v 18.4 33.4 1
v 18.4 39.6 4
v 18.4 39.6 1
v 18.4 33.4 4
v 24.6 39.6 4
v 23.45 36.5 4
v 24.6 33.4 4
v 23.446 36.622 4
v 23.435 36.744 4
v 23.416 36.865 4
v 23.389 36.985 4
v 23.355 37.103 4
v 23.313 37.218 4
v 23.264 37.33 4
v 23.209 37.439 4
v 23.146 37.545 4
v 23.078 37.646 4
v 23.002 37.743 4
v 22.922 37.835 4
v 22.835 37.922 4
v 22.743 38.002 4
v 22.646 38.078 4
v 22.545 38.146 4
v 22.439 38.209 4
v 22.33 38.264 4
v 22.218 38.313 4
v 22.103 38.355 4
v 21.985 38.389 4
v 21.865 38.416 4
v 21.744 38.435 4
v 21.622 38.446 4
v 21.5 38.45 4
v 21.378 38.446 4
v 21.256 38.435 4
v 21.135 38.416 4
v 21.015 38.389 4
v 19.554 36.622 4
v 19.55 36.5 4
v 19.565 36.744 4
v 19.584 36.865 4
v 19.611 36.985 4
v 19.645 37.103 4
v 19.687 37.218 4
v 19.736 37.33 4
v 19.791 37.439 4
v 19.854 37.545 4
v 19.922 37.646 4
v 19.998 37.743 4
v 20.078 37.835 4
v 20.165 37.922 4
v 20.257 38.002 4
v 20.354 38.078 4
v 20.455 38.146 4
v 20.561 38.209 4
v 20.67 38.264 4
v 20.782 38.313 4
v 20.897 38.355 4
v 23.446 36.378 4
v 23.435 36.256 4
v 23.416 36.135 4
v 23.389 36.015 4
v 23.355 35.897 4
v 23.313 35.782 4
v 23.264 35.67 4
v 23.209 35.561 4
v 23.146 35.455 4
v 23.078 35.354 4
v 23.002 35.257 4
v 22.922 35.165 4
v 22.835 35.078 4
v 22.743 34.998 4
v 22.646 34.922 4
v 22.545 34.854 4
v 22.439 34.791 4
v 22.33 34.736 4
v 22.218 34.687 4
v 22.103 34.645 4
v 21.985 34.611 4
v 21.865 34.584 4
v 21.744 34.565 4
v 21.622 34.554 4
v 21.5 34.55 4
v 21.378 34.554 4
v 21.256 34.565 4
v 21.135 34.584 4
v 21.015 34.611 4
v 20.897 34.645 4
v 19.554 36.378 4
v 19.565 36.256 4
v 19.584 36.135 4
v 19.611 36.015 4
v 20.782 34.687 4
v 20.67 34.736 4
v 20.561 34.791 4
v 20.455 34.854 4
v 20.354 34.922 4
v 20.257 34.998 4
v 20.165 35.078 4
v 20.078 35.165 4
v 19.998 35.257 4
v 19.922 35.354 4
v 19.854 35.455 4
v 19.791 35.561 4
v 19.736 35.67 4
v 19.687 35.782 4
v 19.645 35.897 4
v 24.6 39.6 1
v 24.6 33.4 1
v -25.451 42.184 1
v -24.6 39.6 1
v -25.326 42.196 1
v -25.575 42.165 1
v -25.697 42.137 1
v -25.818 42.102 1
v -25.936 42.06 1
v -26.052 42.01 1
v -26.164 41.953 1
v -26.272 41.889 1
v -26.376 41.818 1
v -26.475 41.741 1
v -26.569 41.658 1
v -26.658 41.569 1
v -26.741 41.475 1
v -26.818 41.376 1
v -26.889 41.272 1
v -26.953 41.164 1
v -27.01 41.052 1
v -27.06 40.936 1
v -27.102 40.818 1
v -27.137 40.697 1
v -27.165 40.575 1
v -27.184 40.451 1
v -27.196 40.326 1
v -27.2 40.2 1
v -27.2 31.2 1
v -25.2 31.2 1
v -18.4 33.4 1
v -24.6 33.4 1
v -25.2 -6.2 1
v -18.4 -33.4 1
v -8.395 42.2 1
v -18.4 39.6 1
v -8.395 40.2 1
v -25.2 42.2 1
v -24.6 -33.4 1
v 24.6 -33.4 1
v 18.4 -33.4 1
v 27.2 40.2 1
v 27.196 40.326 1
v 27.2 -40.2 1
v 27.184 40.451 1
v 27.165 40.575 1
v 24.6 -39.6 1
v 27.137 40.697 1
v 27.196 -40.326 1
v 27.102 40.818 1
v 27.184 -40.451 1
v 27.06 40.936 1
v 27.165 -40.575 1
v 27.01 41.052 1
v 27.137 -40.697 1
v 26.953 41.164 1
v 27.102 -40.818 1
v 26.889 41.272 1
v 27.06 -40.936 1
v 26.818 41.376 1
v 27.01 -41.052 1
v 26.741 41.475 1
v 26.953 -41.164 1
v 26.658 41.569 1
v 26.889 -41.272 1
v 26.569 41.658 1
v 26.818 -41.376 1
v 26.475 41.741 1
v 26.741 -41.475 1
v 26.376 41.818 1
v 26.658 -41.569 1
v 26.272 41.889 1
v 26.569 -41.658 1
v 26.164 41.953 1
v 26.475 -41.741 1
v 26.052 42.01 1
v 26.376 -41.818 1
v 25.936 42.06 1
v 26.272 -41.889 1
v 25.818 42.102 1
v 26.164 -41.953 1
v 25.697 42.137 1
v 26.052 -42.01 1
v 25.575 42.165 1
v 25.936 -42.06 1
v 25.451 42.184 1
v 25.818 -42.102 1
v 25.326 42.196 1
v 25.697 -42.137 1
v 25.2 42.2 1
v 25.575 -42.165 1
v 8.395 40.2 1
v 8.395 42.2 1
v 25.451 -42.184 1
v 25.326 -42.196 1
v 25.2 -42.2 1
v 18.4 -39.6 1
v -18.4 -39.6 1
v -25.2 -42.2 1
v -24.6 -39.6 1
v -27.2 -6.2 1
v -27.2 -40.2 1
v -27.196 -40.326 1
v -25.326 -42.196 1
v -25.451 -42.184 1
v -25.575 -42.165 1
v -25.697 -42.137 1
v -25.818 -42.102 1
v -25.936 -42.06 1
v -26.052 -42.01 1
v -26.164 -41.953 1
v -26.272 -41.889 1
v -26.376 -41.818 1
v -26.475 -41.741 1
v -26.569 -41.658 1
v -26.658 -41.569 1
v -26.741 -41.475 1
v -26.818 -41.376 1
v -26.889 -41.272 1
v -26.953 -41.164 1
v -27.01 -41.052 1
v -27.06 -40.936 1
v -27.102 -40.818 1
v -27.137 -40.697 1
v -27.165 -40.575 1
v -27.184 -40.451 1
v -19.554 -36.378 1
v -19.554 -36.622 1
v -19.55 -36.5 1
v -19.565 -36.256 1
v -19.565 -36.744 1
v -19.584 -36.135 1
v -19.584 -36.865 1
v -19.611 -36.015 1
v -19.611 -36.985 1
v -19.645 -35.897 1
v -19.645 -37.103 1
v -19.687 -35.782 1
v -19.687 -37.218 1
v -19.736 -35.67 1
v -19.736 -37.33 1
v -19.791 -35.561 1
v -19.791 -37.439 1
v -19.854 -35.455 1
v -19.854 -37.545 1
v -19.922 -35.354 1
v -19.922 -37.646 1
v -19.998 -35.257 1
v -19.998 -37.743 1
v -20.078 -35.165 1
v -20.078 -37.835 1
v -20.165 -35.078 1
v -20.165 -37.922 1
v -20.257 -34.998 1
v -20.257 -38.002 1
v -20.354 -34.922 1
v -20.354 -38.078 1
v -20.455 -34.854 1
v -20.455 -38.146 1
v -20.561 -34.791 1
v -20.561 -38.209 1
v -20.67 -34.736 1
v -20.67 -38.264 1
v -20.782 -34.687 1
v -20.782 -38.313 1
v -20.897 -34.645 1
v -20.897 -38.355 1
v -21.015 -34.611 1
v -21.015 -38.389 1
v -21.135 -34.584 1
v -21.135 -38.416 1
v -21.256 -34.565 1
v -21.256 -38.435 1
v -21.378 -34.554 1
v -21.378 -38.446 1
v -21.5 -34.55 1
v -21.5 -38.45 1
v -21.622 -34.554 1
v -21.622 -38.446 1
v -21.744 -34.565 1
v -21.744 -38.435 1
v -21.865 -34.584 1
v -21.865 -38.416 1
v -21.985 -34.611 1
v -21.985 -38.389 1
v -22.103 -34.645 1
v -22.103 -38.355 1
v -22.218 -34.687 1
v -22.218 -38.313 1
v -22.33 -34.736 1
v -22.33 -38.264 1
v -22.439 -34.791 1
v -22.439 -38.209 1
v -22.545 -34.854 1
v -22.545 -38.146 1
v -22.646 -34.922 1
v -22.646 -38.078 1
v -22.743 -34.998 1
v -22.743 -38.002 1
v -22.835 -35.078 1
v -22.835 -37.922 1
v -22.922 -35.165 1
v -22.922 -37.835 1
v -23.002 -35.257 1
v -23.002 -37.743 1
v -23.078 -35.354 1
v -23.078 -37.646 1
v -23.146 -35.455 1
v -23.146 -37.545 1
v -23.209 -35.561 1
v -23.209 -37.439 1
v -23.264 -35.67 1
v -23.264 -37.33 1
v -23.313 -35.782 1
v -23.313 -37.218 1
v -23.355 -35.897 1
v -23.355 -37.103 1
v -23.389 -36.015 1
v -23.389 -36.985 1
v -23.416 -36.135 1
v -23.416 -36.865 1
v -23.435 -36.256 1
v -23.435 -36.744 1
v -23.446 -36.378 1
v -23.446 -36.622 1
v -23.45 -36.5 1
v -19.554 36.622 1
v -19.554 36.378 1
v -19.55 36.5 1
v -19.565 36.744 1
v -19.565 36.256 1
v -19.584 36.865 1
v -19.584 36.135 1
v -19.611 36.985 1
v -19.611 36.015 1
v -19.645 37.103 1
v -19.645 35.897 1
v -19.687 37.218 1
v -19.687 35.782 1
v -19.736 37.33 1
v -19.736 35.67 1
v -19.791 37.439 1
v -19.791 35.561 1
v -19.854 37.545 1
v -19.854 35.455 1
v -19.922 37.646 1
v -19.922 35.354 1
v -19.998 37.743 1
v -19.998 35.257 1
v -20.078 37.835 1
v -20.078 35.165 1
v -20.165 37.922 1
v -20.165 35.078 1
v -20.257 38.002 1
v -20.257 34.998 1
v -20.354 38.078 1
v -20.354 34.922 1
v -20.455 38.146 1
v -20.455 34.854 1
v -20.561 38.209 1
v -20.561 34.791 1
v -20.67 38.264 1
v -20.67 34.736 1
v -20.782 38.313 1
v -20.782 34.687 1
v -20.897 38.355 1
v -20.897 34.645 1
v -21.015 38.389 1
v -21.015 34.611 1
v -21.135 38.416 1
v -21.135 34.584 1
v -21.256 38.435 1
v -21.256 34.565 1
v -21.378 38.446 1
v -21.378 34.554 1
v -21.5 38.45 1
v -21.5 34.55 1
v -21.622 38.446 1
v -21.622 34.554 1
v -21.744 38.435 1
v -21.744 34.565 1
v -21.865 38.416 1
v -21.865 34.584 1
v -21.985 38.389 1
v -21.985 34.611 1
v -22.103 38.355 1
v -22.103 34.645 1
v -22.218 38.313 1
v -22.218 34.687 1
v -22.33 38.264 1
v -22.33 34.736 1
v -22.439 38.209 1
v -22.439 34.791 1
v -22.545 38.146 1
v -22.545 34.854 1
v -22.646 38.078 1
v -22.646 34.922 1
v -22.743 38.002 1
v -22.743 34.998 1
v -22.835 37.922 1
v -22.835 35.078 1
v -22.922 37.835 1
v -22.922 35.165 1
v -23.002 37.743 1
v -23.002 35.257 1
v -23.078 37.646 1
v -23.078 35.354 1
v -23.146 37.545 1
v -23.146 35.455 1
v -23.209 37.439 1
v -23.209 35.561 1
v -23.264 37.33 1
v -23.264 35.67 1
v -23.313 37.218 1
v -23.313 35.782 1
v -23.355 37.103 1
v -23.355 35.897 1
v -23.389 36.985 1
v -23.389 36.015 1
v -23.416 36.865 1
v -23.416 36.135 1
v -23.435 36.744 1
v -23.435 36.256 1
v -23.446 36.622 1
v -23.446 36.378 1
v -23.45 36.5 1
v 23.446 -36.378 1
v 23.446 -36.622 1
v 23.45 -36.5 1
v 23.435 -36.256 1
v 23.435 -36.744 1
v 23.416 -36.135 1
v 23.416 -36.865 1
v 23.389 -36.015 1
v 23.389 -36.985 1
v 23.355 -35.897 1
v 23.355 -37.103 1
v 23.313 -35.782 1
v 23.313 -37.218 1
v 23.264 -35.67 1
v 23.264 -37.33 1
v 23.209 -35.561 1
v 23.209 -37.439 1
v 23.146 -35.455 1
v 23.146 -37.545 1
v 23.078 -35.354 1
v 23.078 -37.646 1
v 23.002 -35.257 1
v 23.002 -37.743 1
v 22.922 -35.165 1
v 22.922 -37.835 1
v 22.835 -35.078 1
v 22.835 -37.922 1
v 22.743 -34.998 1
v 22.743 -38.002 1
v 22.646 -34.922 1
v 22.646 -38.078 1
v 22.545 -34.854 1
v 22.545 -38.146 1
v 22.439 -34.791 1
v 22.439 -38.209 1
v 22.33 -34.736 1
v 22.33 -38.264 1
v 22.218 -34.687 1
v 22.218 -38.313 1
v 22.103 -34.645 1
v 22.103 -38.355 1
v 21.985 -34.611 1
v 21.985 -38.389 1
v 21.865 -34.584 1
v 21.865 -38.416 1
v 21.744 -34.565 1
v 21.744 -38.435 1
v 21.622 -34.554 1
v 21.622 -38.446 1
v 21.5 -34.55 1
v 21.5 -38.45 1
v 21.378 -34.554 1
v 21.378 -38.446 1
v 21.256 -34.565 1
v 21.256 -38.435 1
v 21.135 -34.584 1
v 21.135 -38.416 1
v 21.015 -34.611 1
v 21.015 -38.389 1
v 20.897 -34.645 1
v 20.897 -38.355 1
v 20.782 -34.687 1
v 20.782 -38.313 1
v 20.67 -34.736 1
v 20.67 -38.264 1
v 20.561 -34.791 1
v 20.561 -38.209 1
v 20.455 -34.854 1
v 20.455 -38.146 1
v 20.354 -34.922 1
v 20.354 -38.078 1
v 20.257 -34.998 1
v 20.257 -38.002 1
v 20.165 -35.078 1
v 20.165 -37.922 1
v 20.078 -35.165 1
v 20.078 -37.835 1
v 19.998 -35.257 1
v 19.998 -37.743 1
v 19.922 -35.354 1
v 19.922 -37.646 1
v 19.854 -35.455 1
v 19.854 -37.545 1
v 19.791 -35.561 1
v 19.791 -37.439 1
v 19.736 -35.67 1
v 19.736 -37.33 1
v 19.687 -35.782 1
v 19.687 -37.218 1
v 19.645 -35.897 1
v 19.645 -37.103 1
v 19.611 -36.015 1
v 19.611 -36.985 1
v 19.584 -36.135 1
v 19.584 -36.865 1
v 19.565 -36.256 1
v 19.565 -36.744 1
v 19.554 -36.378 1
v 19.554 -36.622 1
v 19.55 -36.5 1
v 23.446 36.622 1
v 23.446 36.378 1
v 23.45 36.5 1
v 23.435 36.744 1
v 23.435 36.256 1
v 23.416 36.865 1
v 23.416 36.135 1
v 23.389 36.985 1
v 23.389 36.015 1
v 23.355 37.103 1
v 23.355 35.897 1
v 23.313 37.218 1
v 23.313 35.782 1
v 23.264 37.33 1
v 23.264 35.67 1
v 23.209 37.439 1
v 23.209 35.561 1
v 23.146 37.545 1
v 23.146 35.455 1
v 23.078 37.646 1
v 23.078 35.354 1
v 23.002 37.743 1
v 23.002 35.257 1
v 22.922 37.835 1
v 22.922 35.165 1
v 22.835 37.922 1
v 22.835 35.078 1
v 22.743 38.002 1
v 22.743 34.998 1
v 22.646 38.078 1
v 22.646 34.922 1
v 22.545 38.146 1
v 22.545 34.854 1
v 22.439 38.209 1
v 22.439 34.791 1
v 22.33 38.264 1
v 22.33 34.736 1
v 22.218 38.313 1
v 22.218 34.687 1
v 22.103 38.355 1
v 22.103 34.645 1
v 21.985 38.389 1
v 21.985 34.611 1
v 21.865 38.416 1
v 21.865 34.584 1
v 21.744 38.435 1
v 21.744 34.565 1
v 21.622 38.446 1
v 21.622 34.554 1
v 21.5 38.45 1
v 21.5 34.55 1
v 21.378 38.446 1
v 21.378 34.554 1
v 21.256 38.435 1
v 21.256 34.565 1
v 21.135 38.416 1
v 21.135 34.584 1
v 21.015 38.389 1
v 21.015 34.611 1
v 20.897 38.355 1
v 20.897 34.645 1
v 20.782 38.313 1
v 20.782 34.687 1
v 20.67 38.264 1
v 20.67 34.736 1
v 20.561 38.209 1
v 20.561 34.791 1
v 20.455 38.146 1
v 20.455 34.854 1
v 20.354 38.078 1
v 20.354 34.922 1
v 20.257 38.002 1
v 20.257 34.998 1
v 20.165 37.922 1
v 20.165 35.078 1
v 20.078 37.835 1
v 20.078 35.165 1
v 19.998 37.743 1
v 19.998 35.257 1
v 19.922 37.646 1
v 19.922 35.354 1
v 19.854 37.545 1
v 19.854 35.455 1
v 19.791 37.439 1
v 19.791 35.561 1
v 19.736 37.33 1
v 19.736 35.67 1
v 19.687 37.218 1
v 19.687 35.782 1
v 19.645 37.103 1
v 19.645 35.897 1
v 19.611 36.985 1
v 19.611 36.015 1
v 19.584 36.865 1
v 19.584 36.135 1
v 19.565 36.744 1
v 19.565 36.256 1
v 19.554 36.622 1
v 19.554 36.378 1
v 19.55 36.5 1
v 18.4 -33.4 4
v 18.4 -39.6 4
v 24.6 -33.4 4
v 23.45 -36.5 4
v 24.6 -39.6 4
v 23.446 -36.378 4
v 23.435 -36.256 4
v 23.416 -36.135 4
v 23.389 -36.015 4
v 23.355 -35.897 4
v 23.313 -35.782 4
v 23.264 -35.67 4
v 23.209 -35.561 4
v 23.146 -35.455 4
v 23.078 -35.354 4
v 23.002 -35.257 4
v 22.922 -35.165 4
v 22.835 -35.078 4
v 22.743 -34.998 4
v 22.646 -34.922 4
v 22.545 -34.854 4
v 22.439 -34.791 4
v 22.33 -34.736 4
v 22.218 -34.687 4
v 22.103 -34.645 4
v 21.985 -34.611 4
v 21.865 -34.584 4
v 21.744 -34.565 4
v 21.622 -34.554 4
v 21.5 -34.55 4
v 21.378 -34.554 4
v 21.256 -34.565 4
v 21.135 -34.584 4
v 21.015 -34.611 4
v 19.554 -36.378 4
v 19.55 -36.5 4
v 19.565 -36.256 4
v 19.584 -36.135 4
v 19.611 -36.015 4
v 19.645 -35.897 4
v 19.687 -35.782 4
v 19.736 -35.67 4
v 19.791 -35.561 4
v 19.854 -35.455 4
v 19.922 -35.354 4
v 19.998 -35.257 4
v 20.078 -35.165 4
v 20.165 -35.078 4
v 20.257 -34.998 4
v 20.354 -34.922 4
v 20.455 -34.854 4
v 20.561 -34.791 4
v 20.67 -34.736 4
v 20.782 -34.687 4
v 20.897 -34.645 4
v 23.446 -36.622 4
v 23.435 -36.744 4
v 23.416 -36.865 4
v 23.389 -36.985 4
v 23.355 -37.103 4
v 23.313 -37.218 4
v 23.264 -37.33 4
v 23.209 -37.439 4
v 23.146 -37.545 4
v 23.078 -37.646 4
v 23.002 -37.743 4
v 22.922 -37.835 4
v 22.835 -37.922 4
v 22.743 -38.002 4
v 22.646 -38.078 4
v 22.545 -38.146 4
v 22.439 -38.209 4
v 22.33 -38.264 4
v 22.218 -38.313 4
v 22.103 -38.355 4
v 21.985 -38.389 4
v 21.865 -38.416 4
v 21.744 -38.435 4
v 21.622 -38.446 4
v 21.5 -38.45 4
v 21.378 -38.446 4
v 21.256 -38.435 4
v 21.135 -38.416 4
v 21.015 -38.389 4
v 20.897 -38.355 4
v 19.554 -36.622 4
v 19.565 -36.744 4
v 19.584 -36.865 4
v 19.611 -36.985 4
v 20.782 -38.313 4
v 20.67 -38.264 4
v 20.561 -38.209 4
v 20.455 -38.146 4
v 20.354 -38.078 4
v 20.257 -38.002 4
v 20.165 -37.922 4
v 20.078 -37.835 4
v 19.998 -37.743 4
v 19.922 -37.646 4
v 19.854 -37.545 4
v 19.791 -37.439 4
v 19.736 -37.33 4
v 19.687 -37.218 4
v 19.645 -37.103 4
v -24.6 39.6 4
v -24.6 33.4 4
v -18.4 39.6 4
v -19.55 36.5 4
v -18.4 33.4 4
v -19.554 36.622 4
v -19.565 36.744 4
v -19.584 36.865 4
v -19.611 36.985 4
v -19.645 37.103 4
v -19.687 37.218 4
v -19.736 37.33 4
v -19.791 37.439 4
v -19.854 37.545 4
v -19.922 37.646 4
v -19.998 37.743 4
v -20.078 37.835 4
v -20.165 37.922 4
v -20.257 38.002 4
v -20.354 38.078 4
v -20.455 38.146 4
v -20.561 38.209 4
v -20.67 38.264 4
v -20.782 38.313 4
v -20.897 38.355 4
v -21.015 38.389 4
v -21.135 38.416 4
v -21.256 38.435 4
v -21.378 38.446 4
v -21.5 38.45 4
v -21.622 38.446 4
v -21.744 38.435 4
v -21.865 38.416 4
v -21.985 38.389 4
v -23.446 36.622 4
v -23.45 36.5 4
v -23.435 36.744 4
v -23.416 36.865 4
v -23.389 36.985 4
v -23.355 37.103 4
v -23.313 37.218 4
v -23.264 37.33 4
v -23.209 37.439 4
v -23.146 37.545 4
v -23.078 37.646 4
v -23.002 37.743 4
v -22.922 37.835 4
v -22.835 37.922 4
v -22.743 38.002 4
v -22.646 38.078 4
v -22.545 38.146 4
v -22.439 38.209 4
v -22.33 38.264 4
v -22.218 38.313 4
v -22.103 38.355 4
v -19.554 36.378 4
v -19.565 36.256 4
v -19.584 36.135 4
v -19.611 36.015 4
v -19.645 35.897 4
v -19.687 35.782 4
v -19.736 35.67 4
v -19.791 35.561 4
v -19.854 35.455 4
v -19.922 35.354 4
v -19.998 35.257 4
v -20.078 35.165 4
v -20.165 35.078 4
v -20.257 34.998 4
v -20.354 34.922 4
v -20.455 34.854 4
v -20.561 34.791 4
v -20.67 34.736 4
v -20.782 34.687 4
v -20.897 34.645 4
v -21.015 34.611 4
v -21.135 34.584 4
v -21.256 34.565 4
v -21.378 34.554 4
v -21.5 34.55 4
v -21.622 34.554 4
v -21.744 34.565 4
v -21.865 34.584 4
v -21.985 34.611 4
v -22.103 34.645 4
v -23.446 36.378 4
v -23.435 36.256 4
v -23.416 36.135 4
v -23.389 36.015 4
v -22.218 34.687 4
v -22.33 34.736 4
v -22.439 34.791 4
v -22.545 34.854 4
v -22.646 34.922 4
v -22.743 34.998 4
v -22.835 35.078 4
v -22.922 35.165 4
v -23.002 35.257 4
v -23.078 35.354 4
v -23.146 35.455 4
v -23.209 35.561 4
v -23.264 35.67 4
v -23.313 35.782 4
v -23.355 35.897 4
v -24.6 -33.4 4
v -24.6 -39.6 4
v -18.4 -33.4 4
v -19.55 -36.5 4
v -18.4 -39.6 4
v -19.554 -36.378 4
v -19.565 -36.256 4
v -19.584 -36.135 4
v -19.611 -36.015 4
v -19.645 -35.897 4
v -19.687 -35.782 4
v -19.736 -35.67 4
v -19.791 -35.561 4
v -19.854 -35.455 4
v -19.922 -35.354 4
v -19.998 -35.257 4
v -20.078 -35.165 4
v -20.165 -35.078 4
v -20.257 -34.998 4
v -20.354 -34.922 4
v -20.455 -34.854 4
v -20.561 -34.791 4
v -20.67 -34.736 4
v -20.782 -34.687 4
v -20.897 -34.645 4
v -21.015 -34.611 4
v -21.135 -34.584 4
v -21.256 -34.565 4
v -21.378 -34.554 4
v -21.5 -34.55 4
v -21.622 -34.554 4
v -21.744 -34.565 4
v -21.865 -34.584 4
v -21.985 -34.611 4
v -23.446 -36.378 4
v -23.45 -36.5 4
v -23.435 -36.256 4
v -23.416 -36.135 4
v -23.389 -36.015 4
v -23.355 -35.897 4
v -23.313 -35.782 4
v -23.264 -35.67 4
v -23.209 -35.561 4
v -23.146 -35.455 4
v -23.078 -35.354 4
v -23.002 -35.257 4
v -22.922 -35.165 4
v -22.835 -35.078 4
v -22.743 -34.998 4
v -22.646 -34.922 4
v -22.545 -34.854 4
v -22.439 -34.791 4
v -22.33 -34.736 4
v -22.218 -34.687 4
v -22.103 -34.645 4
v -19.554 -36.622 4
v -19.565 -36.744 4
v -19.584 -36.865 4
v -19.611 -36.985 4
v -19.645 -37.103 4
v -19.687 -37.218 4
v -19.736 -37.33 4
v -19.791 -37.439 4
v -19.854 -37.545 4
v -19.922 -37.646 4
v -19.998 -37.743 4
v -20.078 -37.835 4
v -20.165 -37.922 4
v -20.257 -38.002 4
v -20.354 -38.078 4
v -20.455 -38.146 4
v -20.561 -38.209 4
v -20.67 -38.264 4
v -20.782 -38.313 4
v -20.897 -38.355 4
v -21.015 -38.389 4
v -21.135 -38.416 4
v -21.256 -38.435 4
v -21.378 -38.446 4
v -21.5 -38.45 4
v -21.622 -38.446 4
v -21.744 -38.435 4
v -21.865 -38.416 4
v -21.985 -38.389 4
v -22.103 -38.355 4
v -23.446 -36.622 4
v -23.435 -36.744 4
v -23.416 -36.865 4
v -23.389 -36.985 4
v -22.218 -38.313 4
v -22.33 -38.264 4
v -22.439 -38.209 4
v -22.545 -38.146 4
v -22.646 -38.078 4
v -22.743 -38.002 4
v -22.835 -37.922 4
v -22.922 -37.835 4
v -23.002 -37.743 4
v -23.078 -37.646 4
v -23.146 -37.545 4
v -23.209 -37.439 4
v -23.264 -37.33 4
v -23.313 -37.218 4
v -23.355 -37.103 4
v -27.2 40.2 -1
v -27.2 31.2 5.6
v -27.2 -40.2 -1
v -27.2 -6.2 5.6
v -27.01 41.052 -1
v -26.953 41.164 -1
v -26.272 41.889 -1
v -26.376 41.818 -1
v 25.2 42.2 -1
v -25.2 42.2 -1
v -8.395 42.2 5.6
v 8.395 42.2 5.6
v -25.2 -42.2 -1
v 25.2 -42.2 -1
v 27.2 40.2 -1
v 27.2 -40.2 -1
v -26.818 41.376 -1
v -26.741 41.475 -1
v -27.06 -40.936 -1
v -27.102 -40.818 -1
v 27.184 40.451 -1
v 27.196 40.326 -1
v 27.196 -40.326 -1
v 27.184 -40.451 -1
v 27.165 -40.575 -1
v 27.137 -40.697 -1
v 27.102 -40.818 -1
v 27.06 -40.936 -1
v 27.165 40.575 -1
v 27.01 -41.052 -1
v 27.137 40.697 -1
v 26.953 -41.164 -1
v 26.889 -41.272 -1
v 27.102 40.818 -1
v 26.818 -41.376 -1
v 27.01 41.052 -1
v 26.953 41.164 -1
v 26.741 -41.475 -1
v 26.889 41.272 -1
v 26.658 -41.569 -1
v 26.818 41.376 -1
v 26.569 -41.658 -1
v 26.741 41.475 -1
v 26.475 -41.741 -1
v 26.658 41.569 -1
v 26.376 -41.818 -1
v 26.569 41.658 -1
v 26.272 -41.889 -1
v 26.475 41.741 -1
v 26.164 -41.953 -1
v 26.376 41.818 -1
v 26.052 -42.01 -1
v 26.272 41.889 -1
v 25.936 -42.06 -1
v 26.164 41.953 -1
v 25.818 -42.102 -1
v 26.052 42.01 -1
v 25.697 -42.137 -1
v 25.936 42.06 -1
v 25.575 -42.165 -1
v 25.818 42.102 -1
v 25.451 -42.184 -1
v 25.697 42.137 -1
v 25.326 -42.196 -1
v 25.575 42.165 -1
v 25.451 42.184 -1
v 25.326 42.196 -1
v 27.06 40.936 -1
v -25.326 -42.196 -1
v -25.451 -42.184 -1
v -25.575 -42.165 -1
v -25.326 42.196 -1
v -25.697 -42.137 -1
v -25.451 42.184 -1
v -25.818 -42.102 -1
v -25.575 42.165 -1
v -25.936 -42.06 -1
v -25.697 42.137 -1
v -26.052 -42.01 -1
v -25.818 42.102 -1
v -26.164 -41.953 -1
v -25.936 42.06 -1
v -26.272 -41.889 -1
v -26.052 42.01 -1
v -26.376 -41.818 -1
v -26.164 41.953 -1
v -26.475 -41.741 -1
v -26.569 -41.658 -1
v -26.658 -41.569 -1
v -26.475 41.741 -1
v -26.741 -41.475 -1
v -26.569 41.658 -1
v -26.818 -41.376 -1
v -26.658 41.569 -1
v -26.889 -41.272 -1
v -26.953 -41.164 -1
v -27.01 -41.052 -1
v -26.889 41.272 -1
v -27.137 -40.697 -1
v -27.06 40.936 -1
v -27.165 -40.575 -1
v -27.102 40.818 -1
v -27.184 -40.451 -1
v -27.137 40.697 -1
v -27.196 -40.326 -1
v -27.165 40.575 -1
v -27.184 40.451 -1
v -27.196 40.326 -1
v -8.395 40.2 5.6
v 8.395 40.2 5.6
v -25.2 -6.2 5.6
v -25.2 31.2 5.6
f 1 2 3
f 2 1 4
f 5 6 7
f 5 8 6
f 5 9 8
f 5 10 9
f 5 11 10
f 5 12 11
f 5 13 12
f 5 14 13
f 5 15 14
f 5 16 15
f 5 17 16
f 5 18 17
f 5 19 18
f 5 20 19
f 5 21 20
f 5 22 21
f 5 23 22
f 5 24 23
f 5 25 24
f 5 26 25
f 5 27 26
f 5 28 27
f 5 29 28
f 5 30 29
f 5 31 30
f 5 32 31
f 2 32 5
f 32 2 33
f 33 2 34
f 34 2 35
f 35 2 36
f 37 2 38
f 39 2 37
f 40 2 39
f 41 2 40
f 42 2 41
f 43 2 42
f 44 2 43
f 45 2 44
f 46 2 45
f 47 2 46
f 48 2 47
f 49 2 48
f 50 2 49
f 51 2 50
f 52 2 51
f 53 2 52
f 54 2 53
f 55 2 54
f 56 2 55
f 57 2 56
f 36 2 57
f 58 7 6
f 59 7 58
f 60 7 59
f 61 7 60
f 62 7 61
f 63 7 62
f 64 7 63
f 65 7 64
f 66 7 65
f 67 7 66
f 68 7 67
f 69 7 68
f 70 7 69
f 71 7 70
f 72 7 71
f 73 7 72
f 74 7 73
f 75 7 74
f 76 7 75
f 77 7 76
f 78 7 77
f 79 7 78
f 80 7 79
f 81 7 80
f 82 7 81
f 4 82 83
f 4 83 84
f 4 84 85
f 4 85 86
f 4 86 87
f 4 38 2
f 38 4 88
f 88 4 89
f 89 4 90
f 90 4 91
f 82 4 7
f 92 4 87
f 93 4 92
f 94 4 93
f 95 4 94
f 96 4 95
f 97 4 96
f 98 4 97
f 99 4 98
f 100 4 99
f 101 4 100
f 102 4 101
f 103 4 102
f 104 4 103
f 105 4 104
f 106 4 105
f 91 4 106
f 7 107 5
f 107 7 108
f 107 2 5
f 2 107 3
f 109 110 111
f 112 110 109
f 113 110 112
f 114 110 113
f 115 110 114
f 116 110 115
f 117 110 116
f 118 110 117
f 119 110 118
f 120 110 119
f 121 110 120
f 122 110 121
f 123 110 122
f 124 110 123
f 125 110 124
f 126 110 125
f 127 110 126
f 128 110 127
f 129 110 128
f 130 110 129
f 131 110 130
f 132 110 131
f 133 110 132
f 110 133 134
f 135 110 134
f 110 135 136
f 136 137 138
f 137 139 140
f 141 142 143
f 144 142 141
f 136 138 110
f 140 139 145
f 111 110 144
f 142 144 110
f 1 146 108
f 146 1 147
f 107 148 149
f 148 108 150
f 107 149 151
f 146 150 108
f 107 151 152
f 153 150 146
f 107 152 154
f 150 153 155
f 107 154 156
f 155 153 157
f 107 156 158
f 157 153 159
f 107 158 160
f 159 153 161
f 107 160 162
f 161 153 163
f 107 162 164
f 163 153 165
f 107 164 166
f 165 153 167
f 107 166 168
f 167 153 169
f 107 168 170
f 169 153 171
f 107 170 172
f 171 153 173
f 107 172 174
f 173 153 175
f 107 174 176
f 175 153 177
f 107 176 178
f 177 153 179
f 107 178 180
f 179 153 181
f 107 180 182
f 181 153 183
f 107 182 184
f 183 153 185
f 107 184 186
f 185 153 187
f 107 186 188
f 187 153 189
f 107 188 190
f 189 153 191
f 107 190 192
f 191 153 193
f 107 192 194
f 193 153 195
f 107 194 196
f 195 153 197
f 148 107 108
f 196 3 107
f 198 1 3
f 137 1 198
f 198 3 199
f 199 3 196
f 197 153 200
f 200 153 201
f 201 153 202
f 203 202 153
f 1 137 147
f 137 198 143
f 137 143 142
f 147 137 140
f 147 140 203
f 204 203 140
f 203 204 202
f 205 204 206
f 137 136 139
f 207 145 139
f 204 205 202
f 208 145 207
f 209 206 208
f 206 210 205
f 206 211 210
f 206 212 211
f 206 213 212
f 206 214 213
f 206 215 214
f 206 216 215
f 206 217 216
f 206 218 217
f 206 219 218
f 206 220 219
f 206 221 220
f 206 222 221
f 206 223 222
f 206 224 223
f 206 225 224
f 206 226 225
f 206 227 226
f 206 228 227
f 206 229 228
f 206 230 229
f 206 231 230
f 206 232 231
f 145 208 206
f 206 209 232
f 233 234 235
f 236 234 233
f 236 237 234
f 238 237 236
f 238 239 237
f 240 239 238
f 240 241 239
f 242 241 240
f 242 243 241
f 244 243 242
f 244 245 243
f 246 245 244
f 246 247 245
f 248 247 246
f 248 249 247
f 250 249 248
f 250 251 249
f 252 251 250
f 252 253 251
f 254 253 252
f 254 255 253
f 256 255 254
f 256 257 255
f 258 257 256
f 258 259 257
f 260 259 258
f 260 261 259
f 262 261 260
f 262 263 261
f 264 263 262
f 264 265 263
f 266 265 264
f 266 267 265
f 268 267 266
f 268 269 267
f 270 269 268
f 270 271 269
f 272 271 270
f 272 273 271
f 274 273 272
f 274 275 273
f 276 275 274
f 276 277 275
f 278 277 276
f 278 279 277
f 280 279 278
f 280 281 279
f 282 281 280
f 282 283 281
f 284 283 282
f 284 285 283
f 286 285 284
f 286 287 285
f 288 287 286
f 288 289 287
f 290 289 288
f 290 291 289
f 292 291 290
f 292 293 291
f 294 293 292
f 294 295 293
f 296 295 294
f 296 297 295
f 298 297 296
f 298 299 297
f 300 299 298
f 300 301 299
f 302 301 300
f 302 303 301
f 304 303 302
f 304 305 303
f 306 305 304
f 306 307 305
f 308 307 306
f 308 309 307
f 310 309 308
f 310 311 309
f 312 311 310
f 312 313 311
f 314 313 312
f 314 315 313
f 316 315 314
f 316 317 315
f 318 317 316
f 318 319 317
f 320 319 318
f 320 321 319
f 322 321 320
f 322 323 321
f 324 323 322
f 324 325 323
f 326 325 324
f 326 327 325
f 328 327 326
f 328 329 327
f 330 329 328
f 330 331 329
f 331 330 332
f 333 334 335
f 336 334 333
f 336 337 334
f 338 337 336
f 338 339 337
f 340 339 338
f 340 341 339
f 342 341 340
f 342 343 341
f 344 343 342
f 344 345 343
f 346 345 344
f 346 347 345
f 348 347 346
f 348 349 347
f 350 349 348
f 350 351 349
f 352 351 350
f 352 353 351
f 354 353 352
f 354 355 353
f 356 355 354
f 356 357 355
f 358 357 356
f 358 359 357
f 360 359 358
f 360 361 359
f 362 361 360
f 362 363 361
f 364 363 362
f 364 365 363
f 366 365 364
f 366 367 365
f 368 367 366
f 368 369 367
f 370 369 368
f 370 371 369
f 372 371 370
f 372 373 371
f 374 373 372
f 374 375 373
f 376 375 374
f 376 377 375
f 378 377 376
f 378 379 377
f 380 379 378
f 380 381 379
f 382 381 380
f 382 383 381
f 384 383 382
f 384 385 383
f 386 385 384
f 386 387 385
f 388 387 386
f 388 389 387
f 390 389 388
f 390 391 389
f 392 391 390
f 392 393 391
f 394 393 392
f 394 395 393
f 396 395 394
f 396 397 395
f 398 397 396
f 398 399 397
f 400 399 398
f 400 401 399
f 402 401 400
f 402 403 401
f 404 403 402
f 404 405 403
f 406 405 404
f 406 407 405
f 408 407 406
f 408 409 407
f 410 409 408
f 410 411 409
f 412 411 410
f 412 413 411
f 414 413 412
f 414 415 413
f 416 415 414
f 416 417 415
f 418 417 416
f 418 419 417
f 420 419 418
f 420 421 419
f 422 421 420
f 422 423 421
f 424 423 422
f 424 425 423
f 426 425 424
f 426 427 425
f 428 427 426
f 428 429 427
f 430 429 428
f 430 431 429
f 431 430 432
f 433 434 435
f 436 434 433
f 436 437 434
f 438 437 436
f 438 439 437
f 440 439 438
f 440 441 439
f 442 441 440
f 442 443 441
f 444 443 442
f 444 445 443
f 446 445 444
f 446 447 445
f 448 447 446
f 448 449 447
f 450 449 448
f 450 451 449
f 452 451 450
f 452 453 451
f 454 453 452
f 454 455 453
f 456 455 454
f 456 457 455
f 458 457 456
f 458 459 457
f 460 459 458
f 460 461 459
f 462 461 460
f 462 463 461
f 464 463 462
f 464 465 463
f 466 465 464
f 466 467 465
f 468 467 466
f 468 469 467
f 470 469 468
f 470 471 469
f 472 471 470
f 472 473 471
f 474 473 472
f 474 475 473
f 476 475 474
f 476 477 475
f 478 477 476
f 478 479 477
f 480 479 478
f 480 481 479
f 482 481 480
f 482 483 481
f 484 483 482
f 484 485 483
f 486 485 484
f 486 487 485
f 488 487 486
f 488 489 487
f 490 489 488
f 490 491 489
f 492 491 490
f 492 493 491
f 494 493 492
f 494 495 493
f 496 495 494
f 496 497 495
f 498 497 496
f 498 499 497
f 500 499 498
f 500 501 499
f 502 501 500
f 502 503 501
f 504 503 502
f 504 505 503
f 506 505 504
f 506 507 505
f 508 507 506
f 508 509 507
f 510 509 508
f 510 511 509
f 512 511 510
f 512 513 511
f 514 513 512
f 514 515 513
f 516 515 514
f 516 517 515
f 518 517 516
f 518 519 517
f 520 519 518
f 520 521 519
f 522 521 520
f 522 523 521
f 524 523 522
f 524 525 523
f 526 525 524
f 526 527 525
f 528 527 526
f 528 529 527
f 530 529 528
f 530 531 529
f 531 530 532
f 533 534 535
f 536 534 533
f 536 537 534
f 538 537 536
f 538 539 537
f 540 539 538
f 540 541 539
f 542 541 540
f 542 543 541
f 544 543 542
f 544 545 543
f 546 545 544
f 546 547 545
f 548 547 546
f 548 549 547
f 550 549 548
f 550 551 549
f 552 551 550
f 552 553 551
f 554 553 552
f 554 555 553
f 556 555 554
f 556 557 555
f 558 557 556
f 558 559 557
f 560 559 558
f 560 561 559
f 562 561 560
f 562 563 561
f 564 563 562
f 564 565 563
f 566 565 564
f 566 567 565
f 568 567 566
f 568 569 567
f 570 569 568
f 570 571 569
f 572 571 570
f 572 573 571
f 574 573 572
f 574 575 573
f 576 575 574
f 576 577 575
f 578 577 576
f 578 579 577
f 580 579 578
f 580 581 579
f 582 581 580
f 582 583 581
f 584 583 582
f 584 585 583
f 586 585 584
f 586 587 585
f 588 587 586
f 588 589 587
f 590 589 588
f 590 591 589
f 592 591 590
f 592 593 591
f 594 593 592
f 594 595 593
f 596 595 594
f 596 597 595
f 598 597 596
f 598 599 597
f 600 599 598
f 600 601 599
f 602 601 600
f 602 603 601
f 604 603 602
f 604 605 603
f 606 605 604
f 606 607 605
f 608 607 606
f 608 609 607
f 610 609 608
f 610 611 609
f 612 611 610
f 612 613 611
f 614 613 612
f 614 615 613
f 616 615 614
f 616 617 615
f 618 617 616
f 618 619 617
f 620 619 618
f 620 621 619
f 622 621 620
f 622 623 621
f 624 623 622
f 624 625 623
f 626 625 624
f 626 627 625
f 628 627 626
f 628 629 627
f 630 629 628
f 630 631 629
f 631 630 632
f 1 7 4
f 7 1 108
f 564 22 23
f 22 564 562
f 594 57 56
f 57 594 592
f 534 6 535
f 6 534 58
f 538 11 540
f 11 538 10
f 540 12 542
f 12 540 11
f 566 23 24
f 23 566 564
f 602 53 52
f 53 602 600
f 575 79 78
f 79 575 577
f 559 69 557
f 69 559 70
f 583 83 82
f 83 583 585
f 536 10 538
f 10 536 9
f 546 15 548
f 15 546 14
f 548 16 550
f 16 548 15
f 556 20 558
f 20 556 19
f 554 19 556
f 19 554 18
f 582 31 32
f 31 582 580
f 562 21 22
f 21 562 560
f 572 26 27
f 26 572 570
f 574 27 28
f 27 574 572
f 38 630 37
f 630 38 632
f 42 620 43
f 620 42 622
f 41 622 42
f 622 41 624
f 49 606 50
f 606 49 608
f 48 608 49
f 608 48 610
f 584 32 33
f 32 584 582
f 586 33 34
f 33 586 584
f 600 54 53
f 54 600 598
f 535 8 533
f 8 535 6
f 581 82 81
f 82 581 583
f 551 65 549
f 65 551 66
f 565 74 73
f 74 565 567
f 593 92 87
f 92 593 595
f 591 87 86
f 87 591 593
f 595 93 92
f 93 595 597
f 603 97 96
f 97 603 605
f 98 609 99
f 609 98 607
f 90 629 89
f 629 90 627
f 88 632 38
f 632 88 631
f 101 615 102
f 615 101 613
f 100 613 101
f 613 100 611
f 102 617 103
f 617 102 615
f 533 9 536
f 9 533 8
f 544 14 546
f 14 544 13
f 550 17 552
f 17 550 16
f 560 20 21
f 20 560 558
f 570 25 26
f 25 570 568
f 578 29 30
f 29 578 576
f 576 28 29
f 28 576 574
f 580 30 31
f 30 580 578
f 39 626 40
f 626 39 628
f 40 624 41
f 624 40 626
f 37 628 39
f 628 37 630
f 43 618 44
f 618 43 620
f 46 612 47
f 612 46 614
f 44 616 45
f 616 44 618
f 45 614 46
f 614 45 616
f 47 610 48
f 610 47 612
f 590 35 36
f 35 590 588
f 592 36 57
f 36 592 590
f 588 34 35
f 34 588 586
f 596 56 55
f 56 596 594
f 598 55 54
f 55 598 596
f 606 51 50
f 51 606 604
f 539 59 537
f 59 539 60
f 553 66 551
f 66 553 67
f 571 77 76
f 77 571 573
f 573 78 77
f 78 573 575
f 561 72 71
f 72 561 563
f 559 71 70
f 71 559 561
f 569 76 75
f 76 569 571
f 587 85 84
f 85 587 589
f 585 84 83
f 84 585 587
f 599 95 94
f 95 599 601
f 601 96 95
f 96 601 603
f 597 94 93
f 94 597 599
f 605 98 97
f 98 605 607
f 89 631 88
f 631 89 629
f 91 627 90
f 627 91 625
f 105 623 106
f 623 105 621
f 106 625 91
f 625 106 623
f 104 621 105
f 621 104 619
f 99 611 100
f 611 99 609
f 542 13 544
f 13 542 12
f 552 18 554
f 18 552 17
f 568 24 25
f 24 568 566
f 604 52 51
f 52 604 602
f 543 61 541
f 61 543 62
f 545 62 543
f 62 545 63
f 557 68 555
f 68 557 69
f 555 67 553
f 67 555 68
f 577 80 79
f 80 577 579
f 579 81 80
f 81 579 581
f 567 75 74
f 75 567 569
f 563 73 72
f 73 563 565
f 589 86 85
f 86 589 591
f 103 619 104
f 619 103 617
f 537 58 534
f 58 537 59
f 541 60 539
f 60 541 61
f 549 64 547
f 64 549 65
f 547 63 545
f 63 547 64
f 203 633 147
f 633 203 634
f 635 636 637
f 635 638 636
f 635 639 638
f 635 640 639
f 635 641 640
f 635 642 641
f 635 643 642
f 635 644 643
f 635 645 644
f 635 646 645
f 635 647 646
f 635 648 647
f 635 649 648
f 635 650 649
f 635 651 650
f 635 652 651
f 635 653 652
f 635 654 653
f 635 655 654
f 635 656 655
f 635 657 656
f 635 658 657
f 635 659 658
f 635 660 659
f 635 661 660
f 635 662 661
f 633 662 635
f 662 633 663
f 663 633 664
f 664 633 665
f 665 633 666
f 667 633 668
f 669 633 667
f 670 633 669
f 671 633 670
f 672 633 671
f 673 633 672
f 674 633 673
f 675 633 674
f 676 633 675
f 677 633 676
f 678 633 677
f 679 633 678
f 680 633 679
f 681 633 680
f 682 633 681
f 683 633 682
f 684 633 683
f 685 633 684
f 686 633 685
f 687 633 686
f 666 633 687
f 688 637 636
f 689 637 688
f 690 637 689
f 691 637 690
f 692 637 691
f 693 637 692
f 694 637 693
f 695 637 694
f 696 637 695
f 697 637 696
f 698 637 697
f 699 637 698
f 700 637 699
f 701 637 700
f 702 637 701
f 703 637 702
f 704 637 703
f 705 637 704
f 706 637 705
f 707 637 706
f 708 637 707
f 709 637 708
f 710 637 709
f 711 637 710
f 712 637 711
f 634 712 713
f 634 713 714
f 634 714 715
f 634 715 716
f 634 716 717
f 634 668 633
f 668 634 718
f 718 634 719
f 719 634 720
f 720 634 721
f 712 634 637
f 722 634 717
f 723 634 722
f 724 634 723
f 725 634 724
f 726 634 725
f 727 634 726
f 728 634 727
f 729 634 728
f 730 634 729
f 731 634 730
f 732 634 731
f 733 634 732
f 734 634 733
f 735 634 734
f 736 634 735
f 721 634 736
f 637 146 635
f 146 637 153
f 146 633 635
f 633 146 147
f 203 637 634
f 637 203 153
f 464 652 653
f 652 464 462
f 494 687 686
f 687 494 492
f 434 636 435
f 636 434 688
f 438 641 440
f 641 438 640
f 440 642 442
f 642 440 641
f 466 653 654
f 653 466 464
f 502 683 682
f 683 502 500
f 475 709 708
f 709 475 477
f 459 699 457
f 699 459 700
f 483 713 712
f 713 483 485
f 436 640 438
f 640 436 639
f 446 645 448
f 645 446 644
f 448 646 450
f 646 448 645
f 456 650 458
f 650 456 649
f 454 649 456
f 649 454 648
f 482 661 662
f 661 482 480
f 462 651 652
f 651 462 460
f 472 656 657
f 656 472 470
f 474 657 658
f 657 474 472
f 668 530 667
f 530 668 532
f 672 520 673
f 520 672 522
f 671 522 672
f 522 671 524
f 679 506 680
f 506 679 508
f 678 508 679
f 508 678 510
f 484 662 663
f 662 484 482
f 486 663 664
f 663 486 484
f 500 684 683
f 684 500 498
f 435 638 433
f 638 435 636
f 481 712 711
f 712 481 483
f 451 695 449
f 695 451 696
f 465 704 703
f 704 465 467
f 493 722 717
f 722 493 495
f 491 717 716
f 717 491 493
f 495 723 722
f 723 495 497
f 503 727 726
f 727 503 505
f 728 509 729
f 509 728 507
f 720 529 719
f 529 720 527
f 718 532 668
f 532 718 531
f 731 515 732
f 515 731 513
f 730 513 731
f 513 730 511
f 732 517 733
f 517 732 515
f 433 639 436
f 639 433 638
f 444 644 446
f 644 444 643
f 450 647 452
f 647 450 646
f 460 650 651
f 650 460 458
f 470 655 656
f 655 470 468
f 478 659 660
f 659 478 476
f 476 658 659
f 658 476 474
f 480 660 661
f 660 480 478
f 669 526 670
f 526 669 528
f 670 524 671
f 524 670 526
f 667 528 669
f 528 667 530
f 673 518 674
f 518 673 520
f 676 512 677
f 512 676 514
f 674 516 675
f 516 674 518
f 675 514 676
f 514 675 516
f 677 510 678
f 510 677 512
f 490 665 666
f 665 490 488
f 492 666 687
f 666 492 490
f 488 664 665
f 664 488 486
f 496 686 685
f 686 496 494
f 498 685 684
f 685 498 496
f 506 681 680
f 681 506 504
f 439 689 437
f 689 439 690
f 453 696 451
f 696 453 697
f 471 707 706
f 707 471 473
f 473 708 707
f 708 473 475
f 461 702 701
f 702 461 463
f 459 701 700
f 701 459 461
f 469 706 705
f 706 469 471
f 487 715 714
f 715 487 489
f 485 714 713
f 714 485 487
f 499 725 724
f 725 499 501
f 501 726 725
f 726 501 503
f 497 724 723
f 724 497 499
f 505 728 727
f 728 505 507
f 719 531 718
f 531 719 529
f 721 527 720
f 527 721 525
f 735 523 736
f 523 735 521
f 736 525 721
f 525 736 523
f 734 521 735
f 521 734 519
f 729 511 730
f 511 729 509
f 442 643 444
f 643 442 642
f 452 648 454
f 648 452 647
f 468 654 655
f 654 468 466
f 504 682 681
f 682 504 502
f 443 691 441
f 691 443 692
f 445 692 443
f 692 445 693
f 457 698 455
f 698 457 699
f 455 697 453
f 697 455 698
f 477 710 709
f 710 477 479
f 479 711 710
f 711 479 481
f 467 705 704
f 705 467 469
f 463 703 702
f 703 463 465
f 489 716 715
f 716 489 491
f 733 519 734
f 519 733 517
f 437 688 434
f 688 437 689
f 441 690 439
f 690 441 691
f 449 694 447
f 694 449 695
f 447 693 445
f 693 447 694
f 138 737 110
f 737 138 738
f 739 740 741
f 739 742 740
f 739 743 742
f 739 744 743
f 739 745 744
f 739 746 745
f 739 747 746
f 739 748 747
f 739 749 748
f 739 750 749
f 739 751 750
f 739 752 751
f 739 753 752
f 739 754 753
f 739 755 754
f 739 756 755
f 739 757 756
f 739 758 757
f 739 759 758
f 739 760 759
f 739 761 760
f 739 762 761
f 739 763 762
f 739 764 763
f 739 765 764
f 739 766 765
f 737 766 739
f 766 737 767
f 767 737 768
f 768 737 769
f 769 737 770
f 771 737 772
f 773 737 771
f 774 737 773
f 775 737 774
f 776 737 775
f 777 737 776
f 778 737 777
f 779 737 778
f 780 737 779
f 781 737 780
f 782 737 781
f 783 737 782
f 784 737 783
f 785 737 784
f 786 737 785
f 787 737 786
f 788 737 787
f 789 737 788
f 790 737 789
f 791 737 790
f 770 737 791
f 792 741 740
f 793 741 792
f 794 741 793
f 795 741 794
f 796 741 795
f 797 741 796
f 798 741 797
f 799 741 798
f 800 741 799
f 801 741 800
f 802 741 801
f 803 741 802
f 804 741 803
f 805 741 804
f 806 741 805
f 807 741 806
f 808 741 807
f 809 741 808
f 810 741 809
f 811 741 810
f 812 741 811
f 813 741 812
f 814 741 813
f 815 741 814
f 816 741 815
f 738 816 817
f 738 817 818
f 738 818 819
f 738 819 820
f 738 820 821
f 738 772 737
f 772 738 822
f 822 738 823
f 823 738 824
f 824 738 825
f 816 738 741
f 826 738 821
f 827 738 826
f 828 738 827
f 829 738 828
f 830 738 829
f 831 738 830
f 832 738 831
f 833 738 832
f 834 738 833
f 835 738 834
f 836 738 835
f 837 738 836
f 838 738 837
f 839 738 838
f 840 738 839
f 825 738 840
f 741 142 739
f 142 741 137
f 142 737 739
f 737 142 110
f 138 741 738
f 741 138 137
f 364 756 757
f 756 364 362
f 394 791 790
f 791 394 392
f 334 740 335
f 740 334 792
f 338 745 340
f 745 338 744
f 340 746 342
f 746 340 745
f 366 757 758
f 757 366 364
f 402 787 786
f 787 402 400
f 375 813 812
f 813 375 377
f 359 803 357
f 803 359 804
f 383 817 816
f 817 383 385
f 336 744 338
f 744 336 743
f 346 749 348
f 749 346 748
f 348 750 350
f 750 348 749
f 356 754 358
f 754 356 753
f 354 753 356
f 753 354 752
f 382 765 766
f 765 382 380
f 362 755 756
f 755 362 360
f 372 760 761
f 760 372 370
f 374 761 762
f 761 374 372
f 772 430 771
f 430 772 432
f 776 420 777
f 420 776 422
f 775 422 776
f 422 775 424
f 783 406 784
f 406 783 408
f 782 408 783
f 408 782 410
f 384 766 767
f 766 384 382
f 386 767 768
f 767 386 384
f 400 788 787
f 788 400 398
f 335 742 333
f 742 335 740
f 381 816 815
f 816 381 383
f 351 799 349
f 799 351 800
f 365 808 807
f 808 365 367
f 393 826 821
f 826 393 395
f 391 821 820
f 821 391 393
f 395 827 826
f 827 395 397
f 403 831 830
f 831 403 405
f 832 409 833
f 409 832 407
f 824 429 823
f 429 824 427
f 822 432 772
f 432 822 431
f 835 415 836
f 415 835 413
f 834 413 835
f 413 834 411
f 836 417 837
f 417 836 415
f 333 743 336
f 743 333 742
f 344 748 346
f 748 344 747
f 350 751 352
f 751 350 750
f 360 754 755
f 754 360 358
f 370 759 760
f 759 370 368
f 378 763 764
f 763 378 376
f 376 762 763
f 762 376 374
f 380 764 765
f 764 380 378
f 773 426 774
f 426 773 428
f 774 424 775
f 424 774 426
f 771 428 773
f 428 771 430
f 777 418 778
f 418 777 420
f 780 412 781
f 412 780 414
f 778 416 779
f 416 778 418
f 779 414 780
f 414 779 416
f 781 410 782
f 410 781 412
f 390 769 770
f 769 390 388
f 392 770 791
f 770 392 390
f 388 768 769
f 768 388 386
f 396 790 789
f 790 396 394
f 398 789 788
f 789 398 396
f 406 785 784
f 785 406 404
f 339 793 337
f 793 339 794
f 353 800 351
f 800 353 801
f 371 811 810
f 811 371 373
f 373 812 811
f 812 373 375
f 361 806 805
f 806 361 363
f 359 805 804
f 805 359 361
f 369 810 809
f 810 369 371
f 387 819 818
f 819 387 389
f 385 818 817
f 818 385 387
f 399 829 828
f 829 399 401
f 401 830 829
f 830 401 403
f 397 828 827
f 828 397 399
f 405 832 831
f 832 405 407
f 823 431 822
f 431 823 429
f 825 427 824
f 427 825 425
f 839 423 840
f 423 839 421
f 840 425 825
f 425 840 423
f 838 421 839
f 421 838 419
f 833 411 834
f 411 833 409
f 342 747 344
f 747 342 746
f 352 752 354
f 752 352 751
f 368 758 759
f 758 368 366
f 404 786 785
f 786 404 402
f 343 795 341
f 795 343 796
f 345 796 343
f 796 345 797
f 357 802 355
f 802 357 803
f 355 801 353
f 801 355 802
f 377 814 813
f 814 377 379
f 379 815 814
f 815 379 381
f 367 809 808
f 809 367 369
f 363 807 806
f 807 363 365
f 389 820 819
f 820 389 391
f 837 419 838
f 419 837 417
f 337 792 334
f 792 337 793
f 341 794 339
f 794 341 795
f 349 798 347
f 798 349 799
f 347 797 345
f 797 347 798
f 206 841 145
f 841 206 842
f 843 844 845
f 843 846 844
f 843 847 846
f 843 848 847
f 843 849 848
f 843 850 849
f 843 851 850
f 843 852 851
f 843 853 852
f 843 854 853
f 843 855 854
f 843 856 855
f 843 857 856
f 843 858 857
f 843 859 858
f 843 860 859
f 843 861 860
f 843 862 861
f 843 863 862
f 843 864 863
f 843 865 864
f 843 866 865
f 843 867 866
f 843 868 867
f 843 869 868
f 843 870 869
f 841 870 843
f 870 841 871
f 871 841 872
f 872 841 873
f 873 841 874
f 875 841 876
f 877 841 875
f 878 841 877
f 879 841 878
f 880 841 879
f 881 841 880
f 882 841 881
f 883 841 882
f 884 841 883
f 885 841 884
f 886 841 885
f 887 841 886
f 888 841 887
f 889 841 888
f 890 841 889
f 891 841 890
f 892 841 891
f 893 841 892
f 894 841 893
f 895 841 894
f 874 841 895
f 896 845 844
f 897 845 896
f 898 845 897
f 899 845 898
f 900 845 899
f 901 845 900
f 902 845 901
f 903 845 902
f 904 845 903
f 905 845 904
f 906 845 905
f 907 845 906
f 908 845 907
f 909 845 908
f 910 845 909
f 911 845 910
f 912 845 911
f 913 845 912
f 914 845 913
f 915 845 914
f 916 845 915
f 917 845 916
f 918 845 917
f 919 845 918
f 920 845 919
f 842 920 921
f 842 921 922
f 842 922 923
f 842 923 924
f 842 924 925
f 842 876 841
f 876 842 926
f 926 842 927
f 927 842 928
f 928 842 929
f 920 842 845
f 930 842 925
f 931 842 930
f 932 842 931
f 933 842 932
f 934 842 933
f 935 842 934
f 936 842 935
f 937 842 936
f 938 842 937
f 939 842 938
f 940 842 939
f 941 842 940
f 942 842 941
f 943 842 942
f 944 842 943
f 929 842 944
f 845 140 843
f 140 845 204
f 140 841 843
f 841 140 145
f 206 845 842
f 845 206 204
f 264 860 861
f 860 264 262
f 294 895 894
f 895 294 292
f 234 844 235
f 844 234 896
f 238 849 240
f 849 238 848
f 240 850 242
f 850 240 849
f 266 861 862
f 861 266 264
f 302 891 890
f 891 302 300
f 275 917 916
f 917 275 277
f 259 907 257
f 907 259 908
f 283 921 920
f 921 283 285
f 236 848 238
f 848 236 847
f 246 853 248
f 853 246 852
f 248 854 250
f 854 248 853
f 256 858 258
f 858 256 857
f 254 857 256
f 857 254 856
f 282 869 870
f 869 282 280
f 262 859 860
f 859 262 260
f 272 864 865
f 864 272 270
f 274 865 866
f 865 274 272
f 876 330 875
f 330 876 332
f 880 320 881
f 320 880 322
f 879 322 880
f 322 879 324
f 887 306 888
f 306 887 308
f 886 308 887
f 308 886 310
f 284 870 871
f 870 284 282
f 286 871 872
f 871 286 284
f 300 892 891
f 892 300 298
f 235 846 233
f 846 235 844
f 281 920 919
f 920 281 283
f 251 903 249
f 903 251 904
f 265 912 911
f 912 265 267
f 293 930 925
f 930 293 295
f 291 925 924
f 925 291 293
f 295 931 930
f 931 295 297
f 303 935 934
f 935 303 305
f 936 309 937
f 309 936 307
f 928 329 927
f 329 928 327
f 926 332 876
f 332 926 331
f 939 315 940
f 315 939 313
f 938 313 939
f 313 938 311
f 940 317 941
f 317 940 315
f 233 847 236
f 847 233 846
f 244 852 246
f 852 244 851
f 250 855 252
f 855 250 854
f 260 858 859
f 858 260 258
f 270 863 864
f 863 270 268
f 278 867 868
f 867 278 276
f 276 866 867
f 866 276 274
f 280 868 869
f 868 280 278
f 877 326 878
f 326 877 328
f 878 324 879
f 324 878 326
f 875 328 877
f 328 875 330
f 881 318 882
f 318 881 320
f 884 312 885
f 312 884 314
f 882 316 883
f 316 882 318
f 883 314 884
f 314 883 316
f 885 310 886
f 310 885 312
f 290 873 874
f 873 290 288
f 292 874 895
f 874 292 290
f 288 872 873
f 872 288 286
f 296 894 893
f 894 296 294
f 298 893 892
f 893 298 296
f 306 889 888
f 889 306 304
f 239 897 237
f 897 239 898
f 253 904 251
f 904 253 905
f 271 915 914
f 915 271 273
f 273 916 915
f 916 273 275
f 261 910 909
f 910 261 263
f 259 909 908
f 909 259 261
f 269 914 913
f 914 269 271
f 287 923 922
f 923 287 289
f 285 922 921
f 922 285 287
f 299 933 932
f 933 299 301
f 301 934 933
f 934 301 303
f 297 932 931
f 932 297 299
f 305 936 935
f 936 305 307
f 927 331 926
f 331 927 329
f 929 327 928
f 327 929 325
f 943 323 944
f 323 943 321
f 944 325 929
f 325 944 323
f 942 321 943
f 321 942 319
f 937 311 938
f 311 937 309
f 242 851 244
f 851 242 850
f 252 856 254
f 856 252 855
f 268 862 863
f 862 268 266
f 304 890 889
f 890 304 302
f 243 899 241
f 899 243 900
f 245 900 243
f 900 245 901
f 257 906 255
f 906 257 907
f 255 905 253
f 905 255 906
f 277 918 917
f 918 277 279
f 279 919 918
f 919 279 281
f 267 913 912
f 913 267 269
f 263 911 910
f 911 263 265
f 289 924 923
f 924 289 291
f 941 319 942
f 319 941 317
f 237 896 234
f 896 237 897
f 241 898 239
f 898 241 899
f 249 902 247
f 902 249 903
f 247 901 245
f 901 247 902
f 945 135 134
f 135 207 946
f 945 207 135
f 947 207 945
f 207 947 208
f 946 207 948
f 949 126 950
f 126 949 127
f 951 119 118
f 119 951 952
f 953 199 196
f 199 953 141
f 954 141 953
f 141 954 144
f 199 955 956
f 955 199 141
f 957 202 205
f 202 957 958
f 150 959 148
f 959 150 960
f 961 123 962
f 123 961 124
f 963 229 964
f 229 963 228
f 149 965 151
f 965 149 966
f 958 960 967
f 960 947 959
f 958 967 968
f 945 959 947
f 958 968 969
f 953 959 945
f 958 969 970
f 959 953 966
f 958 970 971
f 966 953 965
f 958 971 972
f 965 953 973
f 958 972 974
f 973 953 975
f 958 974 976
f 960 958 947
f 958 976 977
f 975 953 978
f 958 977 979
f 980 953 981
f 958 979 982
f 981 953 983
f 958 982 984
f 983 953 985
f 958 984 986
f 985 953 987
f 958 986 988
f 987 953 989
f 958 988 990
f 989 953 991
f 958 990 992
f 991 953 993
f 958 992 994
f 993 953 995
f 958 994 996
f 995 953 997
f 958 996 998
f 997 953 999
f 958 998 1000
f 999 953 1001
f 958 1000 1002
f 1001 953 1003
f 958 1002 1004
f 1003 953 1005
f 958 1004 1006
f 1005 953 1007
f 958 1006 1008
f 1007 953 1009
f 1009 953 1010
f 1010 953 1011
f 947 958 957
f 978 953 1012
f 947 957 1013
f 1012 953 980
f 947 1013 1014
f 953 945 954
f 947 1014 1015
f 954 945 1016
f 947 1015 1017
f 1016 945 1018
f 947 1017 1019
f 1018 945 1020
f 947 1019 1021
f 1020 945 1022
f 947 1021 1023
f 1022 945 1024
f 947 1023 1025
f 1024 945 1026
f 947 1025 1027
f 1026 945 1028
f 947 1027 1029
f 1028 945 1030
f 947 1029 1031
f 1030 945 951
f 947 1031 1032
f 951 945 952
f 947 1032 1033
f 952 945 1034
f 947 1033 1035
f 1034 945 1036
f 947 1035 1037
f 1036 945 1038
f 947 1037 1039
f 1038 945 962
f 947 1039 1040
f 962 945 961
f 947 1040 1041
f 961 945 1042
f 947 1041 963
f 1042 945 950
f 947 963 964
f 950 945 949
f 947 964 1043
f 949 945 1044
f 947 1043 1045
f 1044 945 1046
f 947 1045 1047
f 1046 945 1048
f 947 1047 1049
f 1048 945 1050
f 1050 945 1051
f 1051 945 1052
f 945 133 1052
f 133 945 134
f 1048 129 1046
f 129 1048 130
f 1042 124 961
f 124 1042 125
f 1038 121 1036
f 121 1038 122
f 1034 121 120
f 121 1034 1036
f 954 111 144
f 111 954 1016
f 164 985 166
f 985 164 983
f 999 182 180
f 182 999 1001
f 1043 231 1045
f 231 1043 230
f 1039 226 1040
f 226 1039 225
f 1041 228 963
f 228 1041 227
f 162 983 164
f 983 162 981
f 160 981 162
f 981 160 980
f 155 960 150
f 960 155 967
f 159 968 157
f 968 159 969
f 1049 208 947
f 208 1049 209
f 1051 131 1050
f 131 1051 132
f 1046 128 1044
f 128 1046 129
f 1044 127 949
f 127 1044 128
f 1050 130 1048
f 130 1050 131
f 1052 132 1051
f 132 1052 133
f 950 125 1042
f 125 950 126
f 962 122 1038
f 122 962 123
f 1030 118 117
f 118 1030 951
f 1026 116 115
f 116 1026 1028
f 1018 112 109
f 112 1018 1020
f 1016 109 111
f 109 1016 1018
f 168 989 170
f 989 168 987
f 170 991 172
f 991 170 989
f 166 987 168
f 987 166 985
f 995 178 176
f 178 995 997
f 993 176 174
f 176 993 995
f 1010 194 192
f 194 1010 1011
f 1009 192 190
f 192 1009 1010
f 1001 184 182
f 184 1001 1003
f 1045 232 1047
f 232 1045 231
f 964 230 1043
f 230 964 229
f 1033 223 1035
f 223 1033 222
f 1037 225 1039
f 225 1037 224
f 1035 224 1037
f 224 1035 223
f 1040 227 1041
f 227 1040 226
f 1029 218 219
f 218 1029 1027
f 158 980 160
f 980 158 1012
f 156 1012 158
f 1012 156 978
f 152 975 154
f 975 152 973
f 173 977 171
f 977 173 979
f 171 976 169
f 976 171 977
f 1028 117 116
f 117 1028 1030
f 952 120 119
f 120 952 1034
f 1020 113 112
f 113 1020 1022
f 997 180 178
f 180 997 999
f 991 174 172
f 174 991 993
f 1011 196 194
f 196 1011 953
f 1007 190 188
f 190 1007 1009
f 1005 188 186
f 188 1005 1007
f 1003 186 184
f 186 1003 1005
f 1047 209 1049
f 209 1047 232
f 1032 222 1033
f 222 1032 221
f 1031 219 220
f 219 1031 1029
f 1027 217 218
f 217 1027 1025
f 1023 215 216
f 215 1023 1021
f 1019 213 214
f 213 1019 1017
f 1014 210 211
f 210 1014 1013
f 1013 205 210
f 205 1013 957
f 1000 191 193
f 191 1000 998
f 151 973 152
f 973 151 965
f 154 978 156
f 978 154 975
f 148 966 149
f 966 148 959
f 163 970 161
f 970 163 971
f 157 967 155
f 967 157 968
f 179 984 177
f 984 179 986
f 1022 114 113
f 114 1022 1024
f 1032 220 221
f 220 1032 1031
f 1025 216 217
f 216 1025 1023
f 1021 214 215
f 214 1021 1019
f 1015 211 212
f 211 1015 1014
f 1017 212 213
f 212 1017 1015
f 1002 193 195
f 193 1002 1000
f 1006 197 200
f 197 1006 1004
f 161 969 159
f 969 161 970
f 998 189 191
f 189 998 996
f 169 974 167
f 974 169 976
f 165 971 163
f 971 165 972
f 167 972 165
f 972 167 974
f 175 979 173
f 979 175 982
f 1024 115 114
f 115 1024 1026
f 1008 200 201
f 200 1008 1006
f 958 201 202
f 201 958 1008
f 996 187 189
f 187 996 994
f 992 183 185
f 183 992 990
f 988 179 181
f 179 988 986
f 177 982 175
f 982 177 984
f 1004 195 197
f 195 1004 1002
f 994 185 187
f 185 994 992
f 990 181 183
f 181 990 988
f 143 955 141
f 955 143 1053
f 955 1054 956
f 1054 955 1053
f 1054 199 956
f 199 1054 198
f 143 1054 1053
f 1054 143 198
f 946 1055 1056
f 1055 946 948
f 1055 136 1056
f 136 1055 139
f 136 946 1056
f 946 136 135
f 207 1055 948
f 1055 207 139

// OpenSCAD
// file: LoadCell_Case_Dimensions.scad
// render settings
fn       = 100;     // sides to render on cylinder
cutClear = 0.001;   // exact cutouts do not render

// clearances
clear = 0.2;    // object to case side
chipH = 3;      // height of chips on board

// PCB dimensions
pcbW = 50;      // width
pcbL = 80;      // length
pcbH = 1.6;     // height

// case dimensions
wallW   = 2;    // wall thickness
roundR  = 2;    // radius of rounded corners
wallCut = wallW + cutClear;

// ethernet cutout sizes
ethH = 13.61 + wallW * 2; // 14.00 datasheet recommended
ethW = 16.79 + clear * 2; // 17.55 datasheet recommended

// TRS cutout sizes
trsRad   = 2 + clear;   // radius of cutout for TRS ports
trsSpace = 11;          // spacing between TRS ports 
                        // same as space between first TRS port and PCB edge
trsNum   = 4;           // number of TRS ports
trsCent  = 27.5;        // center of the TRS bank from edge of PCB

// PCB mount points
holeX   = 3.5;                  // distance from hole center to edge of PCB
heatR   = 3.9 / 2;              // radius of hole for heat set insert
heatH   = 3;                    // depth of hole for heat set insert
heatPad = holeX - clear * 2;    // radius of padding around heat set insert

// Makes a cube shape with rounded corners in the z-direction
// dim[x,y,z] - vector containing outer dimensions of the cube
// rad        - radius of the rounded corners 
module RoundCorners(dim, rad) {
    // create adjusted dimensions for corners
    adjDim = [dim[0] - rad * 2, dim[1] - rad * 2, dim[2]];

    hull() {
        // place cylinders at each corner
        for (x = [1, -1])
            for (y = [1, -1])
                translate([x * adjDim[0] / 2,   y * adjDim[1] / 2, 0])
                    cylinder(h = adjDim[2], r = rad, center = true, $fn = fn);

        // place main body
        cube(adjDim, center = true);
    }
}
// main file
include <LoadCell_Case_Dimensions.scad>;

// screw standoffs
standoff = [heatPad * 2, heatPad * 2, chipH];

// base dimensions
baseSize = [pcbW + (clear + wallW) * 2, pcbL + (clear + wallW) * 2, wallW];

// ethernet wall
baseEthWall = [ethW - clear * 2, wallW, pcbH + chipH];

// TRS wall
baseTrsWall = [wallW, trsRad * 2 + trsSpace * (trsNum - 1), pcbH + chipH];

union() {
    // create base
    RoundCorners(baseSize, roundR);

    // place PCB standoff at each corner
    for (x = [1, -1]) {
        for (y = [1, -1]) {
            translate([(pcbW / 2 - holeX) * x, (pcbL / 2 - holeX) * y, (baseSize[2] + standoff[2]) / 2]) {
                difference() {
                    cube(standoff, center = true);
                    cylinder(h = heatH + cutClear, r = heatR, center = true, $fn = fn);
                }
            }
        }
    }

    // place ethernet wall
    translate([0, (baseSize[1] - baseEthWall[1]) / 2, (baseSize[2] + baseEthWall[2]) / 2]) {
        cube(baseEthWall, center = true);
    }

    // place TRS wall
    translate([-(baseSize[0] - baseTrsWall[0]) / 2, pcbL / 2 - trsCent, (baseSize[2] + baseTrsWall[2]) / 2]) {
        cube(baseTrsWall, center = true);
    }
}
